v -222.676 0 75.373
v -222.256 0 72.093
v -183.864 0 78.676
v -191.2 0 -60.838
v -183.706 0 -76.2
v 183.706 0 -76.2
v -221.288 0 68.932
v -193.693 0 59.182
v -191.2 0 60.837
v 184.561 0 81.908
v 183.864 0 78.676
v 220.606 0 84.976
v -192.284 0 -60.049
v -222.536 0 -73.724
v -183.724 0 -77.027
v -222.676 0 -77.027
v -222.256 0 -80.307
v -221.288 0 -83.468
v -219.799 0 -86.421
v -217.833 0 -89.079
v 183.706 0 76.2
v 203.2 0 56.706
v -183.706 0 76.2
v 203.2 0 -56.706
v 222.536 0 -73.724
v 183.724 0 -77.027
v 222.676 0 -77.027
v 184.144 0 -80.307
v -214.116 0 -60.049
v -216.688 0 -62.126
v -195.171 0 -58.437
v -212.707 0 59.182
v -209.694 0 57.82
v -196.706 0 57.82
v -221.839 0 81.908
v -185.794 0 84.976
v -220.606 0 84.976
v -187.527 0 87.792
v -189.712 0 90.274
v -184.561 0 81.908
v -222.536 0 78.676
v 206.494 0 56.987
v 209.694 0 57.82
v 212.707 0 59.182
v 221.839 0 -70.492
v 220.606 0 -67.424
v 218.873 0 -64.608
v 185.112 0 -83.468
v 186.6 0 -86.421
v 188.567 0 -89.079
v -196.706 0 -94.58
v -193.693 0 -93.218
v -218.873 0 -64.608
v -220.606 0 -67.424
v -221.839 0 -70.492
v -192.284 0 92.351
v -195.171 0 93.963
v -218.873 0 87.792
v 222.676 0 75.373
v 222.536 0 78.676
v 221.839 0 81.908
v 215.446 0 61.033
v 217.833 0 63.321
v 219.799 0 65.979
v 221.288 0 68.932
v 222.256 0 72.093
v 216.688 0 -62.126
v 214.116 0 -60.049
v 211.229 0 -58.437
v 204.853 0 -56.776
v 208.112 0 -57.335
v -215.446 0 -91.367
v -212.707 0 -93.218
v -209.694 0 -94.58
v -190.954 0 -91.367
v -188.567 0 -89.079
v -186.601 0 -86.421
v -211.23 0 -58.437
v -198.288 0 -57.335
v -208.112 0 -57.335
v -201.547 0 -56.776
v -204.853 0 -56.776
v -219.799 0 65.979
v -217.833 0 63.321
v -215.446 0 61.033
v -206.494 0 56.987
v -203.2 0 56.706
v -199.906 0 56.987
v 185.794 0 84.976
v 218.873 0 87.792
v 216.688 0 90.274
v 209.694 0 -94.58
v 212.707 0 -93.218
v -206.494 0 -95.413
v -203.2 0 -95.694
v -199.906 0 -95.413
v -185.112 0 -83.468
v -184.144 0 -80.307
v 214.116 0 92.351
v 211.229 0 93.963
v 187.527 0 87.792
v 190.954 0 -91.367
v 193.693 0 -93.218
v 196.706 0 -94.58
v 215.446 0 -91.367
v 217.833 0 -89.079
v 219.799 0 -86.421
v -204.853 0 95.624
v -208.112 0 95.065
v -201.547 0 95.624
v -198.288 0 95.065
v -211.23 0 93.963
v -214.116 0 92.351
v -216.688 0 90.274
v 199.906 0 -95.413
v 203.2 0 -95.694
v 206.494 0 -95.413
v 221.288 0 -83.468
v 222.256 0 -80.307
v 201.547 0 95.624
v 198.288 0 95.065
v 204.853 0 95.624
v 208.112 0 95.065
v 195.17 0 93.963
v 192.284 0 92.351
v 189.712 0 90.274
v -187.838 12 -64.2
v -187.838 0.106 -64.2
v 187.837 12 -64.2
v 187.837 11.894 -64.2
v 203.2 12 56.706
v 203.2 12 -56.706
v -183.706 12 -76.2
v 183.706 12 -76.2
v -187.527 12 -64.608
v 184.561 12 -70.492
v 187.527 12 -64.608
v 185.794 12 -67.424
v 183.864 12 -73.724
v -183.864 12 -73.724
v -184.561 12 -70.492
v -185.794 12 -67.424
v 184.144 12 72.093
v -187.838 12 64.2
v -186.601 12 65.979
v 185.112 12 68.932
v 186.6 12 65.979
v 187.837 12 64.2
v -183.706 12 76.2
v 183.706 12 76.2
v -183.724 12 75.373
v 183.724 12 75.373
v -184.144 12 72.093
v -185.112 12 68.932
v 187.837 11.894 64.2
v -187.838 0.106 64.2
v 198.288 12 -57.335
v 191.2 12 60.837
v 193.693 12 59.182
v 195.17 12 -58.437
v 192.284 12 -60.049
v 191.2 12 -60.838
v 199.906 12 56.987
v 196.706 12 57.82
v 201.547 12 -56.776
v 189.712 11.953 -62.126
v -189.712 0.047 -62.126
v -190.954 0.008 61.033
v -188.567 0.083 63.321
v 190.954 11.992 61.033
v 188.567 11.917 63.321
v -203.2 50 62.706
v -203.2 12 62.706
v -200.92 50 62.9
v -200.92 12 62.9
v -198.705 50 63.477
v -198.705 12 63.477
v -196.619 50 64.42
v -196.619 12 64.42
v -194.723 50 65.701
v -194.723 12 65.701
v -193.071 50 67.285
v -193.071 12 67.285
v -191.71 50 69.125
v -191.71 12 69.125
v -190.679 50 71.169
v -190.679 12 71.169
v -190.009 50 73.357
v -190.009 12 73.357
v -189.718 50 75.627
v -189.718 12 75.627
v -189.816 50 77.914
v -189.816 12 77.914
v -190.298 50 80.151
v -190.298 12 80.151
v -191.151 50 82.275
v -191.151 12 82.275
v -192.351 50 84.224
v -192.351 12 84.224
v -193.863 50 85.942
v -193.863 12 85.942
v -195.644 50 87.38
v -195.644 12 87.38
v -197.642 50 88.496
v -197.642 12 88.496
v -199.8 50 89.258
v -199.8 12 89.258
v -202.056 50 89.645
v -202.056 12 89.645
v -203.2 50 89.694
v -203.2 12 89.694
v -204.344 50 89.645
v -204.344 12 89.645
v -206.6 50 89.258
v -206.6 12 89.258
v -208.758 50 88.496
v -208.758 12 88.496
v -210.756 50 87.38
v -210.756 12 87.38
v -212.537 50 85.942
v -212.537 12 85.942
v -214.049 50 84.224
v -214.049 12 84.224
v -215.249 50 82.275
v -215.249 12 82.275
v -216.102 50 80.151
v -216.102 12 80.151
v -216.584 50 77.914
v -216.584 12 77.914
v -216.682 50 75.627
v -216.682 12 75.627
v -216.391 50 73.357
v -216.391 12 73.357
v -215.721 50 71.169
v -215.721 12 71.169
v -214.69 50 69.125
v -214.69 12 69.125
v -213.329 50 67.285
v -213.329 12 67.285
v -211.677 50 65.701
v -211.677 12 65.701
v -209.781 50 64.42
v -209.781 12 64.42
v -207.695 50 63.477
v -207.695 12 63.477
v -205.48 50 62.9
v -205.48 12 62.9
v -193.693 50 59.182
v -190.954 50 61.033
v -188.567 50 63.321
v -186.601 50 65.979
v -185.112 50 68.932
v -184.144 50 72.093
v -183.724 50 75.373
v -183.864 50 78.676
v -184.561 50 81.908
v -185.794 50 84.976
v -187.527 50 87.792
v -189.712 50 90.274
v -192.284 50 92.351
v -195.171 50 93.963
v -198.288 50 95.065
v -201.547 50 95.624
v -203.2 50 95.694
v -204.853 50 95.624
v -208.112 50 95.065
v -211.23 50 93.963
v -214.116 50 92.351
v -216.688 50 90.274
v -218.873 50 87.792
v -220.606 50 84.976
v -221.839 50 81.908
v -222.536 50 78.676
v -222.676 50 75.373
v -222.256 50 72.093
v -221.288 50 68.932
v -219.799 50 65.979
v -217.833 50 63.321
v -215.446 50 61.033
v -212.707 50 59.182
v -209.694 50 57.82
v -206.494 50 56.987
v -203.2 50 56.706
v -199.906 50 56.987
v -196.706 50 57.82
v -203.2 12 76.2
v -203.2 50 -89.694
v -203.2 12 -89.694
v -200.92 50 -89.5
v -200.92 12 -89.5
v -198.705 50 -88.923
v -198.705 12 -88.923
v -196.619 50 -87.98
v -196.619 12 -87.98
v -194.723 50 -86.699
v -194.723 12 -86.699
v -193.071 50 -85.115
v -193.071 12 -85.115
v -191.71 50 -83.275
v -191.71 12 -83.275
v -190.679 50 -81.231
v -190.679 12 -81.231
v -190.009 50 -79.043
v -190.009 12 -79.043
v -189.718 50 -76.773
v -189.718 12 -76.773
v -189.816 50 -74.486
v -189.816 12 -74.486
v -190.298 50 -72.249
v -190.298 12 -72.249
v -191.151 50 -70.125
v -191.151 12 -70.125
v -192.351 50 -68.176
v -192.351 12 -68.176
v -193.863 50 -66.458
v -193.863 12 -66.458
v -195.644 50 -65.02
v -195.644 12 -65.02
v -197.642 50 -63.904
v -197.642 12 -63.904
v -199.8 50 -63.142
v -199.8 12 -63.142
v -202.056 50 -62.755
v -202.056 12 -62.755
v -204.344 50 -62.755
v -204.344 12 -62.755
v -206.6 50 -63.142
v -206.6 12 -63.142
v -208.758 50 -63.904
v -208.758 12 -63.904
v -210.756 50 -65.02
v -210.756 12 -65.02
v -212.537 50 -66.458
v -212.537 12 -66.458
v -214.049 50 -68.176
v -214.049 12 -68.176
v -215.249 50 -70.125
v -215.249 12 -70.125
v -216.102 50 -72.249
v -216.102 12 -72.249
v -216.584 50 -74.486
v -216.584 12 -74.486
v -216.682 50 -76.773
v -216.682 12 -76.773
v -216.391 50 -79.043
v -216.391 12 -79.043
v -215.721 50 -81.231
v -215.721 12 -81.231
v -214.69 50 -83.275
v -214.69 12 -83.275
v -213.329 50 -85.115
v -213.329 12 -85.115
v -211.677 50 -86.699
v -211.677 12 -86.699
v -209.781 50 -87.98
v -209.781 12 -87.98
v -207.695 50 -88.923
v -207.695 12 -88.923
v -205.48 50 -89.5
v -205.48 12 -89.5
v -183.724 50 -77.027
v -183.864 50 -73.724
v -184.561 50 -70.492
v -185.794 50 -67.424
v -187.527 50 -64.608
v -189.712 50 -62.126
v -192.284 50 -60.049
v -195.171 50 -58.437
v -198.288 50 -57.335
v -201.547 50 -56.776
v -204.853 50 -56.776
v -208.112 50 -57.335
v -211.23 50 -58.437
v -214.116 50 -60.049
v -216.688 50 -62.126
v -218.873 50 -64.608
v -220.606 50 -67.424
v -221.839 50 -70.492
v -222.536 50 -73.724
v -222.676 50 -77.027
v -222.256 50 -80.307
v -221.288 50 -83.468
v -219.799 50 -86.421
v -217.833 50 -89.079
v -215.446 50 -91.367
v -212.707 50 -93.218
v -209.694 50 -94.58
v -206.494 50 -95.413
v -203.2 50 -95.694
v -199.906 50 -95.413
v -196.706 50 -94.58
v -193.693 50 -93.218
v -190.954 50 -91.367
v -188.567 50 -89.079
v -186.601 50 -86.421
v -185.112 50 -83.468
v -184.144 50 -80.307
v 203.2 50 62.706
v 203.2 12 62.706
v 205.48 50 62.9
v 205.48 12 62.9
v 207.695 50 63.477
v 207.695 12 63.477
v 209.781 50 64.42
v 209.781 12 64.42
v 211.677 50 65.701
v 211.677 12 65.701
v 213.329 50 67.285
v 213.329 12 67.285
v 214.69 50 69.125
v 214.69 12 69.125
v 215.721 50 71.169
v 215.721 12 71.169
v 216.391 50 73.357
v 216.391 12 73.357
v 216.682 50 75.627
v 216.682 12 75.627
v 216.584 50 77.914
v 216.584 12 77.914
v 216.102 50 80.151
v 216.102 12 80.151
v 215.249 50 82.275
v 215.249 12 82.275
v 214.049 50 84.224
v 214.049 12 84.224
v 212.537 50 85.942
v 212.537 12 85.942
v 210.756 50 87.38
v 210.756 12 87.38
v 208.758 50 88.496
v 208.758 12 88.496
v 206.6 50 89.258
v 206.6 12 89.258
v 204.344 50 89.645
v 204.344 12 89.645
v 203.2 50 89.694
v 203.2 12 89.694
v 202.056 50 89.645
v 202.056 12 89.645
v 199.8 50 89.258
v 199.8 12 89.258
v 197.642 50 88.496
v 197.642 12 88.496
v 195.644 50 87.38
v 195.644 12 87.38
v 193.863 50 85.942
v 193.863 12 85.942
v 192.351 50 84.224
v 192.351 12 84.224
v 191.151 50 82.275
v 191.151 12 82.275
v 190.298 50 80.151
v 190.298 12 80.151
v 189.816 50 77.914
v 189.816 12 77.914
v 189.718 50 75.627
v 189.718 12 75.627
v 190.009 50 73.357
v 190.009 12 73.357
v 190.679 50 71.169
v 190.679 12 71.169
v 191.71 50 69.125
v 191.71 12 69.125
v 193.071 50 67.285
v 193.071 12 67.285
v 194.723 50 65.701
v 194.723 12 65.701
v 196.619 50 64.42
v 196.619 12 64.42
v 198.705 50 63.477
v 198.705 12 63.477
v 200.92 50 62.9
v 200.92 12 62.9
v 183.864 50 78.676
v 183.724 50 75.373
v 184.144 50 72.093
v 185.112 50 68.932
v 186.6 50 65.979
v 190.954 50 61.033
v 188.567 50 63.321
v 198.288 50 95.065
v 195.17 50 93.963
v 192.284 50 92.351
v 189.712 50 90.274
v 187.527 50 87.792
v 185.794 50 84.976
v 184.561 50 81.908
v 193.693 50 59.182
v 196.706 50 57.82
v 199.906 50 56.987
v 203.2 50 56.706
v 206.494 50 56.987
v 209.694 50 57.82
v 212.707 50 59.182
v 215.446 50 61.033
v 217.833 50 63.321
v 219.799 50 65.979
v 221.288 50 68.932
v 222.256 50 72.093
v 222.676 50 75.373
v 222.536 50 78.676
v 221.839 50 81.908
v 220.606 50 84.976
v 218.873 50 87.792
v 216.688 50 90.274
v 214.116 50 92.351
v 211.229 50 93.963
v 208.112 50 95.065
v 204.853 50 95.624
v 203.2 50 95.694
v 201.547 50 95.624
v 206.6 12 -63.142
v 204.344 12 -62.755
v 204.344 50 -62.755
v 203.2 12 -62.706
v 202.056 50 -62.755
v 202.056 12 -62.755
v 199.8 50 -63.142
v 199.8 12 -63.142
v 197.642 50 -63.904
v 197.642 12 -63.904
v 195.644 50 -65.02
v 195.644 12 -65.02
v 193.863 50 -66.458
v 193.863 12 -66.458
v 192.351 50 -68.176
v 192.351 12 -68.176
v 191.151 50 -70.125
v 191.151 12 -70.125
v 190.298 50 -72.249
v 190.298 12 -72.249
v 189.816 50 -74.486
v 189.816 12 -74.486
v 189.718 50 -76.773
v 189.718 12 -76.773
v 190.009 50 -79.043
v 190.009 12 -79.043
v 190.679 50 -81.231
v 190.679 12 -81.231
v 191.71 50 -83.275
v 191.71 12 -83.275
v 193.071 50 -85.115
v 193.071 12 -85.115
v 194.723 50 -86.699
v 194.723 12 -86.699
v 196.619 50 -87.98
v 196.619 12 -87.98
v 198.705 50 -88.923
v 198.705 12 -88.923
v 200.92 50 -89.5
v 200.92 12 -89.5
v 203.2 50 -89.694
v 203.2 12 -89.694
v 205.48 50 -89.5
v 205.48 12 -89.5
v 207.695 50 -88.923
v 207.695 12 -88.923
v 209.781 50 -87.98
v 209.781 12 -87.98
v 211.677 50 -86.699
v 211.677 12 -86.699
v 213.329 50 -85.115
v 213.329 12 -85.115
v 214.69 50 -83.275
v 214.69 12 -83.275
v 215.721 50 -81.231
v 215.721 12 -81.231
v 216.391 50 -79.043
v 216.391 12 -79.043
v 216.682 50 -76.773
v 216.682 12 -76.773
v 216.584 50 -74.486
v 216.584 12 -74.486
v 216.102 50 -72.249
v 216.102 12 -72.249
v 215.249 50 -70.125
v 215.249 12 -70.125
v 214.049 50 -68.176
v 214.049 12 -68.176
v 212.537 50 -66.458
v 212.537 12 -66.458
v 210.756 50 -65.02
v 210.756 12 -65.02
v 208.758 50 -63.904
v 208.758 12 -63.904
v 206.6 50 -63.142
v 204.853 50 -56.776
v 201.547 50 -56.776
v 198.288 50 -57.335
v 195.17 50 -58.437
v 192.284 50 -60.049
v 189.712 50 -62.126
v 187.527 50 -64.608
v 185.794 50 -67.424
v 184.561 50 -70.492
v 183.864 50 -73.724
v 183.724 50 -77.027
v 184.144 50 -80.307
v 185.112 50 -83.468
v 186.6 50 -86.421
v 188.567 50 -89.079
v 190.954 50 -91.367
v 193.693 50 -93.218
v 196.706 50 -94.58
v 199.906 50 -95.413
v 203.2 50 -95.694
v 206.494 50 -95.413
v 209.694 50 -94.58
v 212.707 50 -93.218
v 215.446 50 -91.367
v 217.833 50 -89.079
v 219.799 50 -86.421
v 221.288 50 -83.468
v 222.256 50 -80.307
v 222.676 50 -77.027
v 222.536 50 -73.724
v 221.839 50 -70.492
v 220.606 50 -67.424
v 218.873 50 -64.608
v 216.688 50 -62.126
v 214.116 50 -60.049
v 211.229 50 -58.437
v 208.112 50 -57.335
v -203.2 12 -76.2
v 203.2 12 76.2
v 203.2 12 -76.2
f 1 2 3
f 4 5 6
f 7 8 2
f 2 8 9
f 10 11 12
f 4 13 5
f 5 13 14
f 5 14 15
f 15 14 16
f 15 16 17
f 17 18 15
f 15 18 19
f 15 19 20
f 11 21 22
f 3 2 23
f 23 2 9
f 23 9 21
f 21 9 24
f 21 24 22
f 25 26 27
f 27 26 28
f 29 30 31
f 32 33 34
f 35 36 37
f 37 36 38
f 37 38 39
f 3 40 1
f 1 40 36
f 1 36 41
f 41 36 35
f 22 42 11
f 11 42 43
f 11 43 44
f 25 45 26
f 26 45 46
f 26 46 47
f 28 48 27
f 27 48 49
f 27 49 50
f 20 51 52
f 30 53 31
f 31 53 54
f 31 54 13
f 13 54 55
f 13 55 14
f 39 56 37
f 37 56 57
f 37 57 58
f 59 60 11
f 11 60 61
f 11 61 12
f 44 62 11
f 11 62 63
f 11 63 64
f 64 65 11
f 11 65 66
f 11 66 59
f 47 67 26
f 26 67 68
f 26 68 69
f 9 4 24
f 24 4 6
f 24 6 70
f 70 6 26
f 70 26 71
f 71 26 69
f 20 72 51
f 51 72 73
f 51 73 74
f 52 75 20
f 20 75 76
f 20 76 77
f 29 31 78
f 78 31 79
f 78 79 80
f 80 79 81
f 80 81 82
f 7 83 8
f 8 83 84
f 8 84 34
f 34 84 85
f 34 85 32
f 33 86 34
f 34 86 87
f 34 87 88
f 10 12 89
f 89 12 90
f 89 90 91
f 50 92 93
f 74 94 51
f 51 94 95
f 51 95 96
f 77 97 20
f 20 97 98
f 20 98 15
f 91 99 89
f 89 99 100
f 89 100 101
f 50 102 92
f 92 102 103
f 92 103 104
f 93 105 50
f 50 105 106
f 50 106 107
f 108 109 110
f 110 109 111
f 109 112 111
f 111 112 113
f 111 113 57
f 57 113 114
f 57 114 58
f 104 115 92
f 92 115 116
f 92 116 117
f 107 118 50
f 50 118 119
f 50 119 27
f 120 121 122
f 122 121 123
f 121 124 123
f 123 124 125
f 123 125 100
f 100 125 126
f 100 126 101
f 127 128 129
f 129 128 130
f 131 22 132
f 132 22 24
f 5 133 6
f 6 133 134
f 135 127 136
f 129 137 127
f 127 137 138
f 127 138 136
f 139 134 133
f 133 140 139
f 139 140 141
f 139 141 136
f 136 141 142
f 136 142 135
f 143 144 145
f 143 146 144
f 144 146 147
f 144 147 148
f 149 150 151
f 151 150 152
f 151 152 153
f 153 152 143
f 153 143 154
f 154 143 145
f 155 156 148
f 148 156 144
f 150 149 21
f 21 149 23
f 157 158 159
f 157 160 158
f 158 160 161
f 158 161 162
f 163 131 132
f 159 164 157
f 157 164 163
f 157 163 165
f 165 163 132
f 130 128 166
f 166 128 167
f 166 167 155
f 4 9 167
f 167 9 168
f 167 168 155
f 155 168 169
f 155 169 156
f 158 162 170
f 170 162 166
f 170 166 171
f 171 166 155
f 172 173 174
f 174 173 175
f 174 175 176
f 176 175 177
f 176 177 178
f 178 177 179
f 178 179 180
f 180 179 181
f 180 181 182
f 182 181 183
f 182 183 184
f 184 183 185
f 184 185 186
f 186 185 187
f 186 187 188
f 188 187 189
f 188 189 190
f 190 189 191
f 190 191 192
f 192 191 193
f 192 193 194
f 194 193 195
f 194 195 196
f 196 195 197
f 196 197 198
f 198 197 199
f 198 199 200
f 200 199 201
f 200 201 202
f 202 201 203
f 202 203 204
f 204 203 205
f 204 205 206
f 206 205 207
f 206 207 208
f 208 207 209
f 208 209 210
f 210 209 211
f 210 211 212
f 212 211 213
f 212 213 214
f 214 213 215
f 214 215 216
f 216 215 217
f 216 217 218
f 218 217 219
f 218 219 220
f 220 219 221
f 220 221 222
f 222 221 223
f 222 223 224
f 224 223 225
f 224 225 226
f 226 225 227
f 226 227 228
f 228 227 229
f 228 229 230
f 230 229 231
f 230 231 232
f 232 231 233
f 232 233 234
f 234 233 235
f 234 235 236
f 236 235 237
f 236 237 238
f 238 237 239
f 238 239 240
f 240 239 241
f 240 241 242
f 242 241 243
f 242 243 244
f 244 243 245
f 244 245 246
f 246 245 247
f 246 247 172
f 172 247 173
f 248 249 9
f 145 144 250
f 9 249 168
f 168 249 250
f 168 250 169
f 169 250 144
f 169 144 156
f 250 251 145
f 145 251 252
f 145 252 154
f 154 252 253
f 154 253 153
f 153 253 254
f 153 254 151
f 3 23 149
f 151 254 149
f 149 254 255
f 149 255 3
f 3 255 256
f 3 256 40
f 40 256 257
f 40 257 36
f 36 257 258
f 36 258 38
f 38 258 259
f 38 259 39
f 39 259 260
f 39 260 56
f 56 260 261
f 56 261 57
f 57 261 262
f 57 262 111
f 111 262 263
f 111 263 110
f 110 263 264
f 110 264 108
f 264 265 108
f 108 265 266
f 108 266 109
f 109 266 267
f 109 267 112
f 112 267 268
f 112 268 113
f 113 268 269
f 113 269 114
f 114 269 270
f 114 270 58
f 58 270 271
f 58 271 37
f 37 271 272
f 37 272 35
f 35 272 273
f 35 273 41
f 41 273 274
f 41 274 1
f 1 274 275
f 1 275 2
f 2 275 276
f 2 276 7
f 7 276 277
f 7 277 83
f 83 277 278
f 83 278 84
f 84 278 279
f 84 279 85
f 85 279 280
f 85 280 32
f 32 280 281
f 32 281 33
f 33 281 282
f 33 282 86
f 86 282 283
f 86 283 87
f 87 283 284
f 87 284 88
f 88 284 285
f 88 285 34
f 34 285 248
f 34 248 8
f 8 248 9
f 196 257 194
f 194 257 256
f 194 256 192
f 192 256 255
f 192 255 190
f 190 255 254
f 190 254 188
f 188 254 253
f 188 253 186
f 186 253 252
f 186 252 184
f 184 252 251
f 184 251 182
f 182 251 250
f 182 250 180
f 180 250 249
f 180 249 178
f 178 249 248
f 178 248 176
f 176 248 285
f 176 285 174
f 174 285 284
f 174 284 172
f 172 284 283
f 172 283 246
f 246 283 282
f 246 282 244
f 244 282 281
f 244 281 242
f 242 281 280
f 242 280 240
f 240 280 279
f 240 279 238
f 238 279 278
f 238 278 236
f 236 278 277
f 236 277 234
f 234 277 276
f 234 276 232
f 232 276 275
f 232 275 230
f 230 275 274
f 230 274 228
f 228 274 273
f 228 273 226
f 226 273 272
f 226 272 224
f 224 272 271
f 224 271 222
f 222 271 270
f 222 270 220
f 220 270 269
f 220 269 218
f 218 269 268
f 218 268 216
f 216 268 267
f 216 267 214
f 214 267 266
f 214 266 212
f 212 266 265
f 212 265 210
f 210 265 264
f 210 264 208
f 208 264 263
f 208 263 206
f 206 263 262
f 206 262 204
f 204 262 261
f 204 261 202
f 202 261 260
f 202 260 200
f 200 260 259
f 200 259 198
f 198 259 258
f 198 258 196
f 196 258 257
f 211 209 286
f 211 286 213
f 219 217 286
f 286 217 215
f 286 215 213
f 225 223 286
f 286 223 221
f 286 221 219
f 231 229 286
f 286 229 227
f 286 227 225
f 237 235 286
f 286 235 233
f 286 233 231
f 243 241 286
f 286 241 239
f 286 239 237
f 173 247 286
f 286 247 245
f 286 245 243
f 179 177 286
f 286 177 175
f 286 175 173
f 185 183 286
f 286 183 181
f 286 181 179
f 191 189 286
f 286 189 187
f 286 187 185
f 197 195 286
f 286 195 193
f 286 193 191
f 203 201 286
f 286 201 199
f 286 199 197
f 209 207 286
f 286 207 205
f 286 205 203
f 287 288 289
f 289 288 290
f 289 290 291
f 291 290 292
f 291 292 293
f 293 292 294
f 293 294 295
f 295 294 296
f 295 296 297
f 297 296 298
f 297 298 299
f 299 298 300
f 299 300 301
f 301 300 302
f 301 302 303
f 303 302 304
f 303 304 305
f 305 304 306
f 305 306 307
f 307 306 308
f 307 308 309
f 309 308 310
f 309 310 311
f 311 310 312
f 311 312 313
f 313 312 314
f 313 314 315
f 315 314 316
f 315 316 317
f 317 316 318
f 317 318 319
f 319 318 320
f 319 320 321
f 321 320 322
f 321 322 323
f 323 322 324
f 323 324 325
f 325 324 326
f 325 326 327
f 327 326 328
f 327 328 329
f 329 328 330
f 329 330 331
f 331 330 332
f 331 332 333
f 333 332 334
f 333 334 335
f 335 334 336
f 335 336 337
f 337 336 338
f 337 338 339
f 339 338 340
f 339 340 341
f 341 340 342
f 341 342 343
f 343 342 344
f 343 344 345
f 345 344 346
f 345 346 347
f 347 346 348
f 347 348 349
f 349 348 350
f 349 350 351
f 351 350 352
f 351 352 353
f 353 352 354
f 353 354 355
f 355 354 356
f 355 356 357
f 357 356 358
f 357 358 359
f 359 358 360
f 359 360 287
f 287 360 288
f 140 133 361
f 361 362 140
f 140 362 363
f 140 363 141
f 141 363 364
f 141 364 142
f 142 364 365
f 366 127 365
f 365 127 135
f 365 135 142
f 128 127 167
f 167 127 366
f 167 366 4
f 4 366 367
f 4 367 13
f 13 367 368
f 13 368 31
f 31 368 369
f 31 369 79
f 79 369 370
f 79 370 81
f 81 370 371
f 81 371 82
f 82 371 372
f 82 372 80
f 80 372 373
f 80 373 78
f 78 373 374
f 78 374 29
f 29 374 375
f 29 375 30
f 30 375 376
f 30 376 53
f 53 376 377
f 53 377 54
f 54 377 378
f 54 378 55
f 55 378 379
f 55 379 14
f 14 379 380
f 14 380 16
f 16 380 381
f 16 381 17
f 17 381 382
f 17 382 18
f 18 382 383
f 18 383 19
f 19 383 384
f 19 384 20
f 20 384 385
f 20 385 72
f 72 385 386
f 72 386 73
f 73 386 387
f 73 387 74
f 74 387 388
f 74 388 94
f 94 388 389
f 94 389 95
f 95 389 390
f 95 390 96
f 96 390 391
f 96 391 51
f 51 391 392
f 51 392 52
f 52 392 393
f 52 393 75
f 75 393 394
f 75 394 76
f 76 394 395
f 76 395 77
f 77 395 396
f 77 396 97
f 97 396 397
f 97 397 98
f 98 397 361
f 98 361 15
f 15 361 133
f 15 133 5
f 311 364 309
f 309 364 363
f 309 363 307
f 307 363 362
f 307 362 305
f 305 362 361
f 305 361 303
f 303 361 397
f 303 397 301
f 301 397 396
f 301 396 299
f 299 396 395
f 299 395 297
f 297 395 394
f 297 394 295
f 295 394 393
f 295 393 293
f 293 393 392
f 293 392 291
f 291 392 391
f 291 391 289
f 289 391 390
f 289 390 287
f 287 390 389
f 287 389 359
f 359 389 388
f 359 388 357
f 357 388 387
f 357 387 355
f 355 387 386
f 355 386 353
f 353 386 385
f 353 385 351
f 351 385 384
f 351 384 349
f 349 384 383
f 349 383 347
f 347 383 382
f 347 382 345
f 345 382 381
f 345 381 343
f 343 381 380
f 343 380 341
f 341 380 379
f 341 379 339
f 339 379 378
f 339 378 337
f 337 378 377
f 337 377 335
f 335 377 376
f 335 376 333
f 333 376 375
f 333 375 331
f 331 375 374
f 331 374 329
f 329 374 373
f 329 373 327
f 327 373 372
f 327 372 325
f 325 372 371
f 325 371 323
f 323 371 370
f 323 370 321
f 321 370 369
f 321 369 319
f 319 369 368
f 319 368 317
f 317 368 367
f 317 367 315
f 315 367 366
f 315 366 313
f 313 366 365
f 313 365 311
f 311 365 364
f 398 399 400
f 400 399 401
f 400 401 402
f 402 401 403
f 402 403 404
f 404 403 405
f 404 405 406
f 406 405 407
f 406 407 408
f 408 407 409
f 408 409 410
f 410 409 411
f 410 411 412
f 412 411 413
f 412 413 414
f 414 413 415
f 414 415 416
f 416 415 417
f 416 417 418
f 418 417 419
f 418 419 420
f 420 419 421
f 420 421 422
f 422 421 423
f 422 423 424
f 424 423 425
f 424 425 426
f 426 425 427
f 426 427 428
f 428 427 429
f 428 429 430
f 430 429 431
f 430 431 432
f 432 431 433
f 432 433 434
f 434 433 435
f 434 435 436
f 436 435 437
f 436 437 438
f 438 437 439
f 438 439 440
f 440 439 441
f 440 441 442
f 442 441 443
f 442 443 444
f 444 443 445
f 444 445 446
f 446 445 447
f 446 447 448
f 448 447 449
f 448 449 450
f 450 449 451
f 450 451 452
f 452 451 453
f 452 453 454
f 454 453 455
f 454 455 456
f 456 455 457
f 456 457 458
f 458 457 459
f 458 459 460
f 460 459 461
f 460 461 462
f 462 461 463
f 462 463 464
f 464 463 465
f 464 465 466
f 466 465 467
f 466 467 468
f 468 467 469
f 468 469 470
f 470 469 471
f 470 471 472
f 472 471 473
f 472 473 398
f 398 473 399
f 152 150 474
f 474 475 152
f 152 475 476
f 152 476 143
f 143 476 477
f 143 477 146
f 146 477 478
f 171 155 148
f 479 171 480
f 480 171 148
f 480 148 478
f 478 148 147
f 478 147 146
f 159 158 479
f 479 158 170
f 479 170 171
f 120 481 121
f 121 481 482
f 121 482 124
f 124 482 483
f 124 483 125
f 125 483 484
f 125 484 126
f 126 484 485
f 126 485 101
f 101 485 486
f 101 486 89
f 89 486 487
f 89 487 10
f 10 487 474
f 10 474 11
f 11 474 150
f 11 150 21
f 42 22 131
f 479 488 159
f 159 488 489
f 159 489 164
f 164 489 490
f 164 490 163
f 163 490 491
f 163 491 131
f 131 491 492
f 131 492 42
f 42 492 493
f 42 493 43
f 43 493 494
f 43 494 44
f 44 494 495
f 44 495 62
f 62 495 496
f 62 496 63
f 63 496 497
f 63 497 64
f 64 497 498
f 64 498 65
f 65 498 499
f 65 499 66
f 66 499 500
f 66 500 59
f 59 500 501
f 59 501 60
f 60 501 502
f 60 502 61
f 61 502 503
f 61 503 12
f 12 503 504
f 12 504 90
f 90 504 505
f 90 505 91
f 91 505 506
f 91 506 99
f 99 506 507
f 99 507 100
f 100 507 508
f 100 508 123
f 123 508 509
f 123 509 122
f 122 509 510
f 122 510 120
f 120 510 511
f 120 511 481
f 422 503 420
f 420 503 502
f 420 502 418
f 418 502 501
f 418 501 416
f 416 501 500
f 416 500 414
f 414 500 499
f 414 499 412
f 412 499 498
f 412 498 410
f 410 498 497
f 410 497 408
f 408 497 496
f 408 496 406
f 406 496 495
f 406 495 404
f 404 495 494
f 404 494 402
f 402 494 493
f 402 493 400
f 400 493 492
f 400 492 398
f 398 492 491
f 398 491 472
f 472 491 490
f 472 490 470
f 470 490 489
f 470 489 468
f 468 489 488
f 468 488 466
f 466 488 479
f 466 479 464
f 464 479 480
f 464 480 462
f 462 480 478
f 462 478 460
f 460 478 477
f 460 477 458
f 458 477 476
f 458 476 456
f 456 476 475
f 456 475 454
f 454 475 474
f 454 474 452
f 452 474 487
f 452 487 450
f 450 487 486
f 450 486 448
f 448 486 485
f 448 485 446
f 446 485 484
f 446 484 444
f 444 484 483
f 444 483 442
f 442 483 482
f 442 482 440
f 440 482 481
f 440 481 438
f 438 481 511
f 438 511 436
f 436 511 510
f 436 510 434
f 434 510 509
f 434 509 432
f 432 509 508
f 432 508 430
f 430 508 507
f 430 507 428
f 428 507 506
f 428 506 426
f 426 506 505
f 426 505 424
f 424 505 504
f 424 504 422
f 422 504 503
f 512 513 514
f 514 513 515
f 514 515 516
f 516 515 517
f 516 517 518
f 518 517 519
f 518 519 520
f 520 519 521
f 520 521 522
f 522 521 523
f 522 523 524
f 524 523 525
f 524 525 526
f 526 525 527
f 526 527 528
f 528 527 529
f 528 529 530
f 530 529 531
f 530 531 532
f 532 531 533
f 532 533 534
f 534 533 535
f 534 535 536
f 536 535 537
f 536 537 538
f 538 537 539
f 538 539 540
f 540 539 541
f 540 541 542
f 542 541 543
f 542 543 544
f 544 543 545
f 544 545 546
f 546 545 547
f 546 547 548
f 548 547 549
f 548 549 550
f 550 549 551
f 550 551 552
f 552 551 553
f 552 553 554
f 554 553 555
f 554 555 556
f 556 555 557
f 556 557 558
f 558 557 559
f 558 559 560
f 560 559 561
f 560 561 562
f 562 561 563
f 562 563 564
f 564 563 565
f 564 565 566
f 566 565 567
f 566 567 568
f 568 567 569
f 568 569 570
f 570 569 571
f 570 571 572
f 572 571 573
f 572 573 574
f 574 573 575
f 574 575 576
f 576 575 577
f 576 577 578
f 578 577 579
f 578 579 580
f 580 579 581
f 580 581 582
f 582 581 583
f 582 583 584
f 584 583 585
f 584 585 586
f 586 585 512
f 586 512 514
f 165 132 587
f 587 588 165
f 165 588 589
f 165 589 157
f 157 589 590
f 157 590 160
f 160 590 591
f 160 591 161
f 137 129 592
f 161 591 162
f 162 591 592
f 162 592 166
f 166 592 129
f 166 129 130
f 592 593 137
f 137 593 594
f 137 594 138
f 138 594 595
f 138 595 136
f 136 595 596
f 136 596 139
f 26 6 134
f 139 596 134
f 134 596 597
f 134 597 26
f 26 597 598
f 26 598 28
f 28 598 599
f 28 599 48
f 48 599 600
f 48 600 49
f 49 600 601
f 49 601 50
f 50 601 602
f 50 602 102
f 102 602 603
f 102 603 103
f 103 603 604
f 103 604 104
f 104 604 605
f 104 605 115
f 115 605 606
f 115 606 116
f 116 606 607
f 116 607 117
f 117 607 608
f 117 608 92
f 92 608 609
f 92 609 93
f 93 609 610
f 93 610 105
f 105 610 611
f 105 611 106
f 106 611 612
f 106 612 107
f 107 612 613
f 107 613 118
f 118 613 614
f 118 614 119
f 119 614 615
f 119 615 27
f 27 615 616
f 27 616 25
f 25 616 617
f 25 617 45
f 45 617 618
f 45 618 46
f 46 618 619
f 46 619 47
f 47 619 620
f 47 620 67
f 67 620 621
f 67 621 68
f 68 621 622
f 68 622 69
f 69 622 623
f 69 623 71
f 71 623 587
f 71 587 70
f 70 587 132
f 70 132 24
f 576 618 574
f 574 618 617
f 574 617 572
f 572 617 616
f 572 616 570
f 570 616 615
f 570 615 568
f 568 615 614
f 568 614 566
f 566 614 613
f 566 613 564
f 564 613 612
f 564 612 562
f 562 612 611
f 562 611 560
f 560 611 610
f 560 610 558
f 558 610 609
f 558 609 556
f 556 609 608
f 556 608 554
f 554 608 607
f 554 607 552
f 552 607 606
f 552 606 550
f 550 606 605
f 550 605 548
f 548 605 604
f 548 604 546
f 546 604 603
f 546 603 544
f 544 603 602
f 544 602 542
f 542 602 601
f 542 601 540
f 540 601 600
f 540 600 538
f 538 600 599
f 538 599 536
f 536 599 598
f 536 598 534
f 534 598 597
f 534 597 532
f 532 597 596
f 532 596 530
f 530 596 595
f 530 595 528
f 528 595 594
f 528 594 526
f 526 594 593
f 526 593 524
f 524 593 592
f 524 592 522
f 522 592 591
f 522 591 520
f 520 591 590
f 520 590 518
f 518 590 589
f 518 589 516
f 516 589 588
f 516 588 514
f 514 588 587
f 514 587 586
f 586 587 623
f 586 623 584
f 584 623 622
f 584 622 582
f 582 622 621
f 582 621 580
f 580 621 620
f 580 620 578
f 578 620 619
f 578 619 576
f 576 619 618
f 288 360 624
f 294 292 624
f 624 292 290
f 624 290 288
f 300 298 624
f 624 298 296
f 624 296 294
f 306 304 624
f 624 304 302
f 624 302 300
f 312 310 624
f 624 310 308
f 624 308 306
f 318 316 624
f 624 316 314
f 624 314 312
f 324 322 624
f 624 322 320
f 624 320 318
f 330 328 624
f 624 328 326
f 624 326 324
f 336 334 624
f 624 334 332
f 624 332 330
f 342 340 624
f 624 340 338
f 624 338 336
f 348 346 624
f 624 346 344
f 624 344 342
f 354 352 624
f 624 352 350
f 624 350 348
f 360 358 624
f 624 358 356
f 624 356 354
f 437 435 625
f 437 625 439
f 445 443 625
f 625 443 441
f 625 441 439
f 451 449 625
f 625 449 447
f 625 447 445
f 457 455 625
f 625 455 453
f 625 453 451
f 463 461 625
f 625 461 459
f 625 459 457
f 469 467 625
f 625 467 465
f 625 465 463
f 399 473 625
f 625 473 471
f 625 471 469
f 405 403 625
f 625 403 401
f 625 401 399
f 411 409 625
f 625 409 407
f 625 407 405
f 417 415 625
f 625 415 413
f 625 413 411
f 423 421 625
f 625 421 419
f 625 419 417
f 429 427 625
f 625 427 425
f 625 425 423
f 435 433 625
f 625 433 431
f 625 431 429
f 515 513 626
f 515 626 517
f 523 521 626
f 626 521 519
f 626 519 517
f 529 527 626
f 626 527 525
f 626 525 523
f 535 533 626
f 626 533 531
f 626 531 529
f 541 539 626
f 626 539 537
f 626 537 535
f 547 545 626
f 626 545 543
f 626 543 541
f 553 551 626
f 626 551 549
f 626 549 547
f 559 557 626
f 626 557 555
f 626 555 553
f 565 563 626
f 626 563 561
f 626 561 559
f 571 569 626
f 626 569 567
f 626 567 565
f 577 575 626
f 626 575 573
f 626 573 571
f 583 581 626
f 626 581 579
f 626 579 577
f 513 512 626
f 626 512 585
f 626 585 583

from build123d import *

# Parameters (mm, degrees)
SKETCH1_W                                    = 406.4
SKETCH1_H                                    = 152.4
BOSS_EXTRUDE1_DEPTH                          = 12
CUT_EXTRUDE1_DEPTH                           = 12
BOSS_EXTRUDE2_REACH                          = 249.278
SKETCH4_R                                    = 19.49375
SKETCH4_R_2                                  = 13.49375
BOSS_EXTRUDE3_DEPTH                          = 50
SKETCH4_2_R                                  = 13.49375
CUT_EXTRUDE2_DEPTH                           = 50
SKETCH4_3_R                                  = 13.49375
BOSS_EXTRUDE4_DEPTH                          = 12
MIRROR1_AT_THE_SECOND_PLANE_COPY_1_SKETC_R   = 19.49375
MIRROR1_AT_THE_SECOND_PLANE_COPY_1_SKETC_R_2 = 13.49375
MIRROR1_AT_THE_SECOND_PLANE_COPY_1_DEPTH     = 50
MIRROR1_AT_THE_SECOND_PLANE_COPY_2_SKETC_R   = 13.49375
MIRROR1_AT_THE_SECOND_PLANE_COPY_2_DEPTH     = 50
MIRROR1_AT_THE_SECOND_PLANE_COPY_3_SKETC_R   = 13.49375
MIRROR1_AT_THE_SECOND_PLANE_COPY_3_DEPTH     = 12


with BuildPart() as part:
    # Sketch1 → Boss-Extrude1 (new body)
    with BuildSketch(Plane(origin=(0, 0, 0), x_dir=(1, 0, 0), z_dir=(0, 1, 0))):
        Rectangle(SKETCH1_W, SKETCH1_H)
    extrude(amount=BOSS_EXTRUDE1_DEPTH)

    # Sketch2 → Cut-Extrude1 (cut)
    with BuildSketch(Plane(origin=(0, 12, 0), x_dir=(1, 0, 0), z_dir=(0, 1, 0))):
        Polygon((-203.2, -64.2), (-191.2, -64.2), (191.2, -64.2), (191.2, 64.2), (-191.2, 64.2), (-203.2, 64.2), align=None)
    extrude(amount=-CUT_EXTRUDE1_DEPTH, mode=Mode.SUBTRACT)

    # Sketch3 → Boss-Extrude2 (add, up to next)
    with BuildSketch(Plane.XY.offset(-64.2), mode=Mode.PRIVATE) as boss_extrude2_sk1:
        Polygon((-191.2, 0), (191.2, 12), (191.2, 0), align=None)
    boss_extrude2_tool1 = extrude(boss_extrude2_sk1.sketch, amount=BOSS_EXTRUDE2_REACH, mode=Mode.PRIVATE) - part.part
    add(boss_extrude2_tool1.solids().sort_by_distance((63.733333, 4, -64.2))[0])

    # Sketch4 → Boss-Extrude3 (add)
    with BuildSketch(Plane(origin=(0, 0, 0), x_dir=(1, 0, 0), z_dir=(0, 1, 0))):
        with Locations((-203.2, -76.2)):
            Circle(SKETCH4_R)
        with Locations((-203.2, -76.2)):
            Circle(SKETCH4_R_2, mode=Mode.SUBTRACT)
    boss_extrude3 = extrude(amount=BOSS_EXTRUDE3_DEPTH)

    # Sketch4<2> → Cut-Extrude2 (cut)
    with BuildSketch(Plane(origin=(0, 0, 0), x_dir=(1, 0, 0), z_dir=(0, 1, 0))):
        with Locations((-203.2, -76.2)):
            Circle(SKETCH4_2_R)
    cut_extrude2 = extrude(amount=CUT_EXTRUDE2_DEPTH, mode=Mode.SUBTRACT)

    # Sketch4<3> → Boss-Extrude4 (add)
    with BuildSketch(Plane(origin=(0, 0, 0), x_dir=(1, 0, 0), z_dir=(0, 1, 0))):
        with Locations((-203.2, -76.2)):
            Circle(SKETCH4_3_R)
    boss_extrude4 = extrude(amount=BOSS_EXTRUDE4_DEPTH)

    # Mirror1: Boss-Extrude3, Cut-Extrude2, Boss-Extrude4 across plane
    add(boss_extrude3.mirror(Plane(origin=(0, 0, 0), x_dir=(0, 0, 1), z_dir=(1, 0, 0))))
    add(cut_extrude2.mirror(Plane(origin=(0, 0, 0), x_dir=(0, 0, 1), z_dir=(1, 0, 0))), mode=Mode.SUBTRACT)
    add(boss_extrude4.mirror(Plane(origin=(0, 0, 0), x_dir=(0, 0, 1), z_dir=(1, 0, 0))))

    # Mirror1 at the second plane: Boss-Extrude3, Cut-Extrude2, Boss-Extrude4 across plane
    add(boss_extrude3.mirror(Plane.XY))
    add(cut_extrude2.mirror(Plane.XY), mode=Mode.SUBTRACT)
    add(boss_extrude4.mirror(Plane.XY))

    # Mirror1 at the second plane copy 1 sketc → Mirror1 at the second plane copy 1 (add)
    with BuildSketch(Plane(origin=(0, 0, 0), x_dir=(-1, 0, 0), z_dir=(0, 1, 0))):
        with Locations((-203.2, -76.2)):
            Circle(MIRROR1_AT_THE_SECOND_PLANE_COPY_1_SKETC_R)
        with Locations((-203.2, -76.2)):
            Circle(MIRROR1_AT_THE_SECOND_PLANE_COPY_1_SKETC_R_2, mode=Mode.SUBTRACT)
    extrude(amount=MIRROR1_AT_THE_SECOND_PLANE_COPY_1_DEPTH)

    # Mirror1 at the second plane copy 2 sketc → Mirror1 at the second plane copy 2 (cut)
    with BuildSketch(Plane(origin=(0, 0, 0), x_dir=(-1, 0, 0), z_dir=(0, 1, 0))):
        with Locations((-203.2, -76.2)):
            Circle(MIRROR1_AT_THE_SECOND_PLANE_COPY_2_SKETC_R)
    extrude(amount=MIRROR1_AT_THE_SECOND_PLANE_COPY_2_DEPTH, mode=Mode.SUBTRACT)

    # Mirror1 at the second plane copy 3 sketc → Mirror1 at the second plane copy 3 (add)
    with BuildSketch(Plane(origin=(0, 0, 0), x_dir=(-1, 0, 0), z_dir=(0, 1, 0))):
        with Locations((-203.2, -76.2)):
            Circle(MIRROR1_AT_THE_SECOND_PLANE_COPY_3_SKETC_R)
    extrude(amount=MIRROR1_AT_THE_SECOND_PLANE_COPY_3_DEPTH)


solid = part.part
